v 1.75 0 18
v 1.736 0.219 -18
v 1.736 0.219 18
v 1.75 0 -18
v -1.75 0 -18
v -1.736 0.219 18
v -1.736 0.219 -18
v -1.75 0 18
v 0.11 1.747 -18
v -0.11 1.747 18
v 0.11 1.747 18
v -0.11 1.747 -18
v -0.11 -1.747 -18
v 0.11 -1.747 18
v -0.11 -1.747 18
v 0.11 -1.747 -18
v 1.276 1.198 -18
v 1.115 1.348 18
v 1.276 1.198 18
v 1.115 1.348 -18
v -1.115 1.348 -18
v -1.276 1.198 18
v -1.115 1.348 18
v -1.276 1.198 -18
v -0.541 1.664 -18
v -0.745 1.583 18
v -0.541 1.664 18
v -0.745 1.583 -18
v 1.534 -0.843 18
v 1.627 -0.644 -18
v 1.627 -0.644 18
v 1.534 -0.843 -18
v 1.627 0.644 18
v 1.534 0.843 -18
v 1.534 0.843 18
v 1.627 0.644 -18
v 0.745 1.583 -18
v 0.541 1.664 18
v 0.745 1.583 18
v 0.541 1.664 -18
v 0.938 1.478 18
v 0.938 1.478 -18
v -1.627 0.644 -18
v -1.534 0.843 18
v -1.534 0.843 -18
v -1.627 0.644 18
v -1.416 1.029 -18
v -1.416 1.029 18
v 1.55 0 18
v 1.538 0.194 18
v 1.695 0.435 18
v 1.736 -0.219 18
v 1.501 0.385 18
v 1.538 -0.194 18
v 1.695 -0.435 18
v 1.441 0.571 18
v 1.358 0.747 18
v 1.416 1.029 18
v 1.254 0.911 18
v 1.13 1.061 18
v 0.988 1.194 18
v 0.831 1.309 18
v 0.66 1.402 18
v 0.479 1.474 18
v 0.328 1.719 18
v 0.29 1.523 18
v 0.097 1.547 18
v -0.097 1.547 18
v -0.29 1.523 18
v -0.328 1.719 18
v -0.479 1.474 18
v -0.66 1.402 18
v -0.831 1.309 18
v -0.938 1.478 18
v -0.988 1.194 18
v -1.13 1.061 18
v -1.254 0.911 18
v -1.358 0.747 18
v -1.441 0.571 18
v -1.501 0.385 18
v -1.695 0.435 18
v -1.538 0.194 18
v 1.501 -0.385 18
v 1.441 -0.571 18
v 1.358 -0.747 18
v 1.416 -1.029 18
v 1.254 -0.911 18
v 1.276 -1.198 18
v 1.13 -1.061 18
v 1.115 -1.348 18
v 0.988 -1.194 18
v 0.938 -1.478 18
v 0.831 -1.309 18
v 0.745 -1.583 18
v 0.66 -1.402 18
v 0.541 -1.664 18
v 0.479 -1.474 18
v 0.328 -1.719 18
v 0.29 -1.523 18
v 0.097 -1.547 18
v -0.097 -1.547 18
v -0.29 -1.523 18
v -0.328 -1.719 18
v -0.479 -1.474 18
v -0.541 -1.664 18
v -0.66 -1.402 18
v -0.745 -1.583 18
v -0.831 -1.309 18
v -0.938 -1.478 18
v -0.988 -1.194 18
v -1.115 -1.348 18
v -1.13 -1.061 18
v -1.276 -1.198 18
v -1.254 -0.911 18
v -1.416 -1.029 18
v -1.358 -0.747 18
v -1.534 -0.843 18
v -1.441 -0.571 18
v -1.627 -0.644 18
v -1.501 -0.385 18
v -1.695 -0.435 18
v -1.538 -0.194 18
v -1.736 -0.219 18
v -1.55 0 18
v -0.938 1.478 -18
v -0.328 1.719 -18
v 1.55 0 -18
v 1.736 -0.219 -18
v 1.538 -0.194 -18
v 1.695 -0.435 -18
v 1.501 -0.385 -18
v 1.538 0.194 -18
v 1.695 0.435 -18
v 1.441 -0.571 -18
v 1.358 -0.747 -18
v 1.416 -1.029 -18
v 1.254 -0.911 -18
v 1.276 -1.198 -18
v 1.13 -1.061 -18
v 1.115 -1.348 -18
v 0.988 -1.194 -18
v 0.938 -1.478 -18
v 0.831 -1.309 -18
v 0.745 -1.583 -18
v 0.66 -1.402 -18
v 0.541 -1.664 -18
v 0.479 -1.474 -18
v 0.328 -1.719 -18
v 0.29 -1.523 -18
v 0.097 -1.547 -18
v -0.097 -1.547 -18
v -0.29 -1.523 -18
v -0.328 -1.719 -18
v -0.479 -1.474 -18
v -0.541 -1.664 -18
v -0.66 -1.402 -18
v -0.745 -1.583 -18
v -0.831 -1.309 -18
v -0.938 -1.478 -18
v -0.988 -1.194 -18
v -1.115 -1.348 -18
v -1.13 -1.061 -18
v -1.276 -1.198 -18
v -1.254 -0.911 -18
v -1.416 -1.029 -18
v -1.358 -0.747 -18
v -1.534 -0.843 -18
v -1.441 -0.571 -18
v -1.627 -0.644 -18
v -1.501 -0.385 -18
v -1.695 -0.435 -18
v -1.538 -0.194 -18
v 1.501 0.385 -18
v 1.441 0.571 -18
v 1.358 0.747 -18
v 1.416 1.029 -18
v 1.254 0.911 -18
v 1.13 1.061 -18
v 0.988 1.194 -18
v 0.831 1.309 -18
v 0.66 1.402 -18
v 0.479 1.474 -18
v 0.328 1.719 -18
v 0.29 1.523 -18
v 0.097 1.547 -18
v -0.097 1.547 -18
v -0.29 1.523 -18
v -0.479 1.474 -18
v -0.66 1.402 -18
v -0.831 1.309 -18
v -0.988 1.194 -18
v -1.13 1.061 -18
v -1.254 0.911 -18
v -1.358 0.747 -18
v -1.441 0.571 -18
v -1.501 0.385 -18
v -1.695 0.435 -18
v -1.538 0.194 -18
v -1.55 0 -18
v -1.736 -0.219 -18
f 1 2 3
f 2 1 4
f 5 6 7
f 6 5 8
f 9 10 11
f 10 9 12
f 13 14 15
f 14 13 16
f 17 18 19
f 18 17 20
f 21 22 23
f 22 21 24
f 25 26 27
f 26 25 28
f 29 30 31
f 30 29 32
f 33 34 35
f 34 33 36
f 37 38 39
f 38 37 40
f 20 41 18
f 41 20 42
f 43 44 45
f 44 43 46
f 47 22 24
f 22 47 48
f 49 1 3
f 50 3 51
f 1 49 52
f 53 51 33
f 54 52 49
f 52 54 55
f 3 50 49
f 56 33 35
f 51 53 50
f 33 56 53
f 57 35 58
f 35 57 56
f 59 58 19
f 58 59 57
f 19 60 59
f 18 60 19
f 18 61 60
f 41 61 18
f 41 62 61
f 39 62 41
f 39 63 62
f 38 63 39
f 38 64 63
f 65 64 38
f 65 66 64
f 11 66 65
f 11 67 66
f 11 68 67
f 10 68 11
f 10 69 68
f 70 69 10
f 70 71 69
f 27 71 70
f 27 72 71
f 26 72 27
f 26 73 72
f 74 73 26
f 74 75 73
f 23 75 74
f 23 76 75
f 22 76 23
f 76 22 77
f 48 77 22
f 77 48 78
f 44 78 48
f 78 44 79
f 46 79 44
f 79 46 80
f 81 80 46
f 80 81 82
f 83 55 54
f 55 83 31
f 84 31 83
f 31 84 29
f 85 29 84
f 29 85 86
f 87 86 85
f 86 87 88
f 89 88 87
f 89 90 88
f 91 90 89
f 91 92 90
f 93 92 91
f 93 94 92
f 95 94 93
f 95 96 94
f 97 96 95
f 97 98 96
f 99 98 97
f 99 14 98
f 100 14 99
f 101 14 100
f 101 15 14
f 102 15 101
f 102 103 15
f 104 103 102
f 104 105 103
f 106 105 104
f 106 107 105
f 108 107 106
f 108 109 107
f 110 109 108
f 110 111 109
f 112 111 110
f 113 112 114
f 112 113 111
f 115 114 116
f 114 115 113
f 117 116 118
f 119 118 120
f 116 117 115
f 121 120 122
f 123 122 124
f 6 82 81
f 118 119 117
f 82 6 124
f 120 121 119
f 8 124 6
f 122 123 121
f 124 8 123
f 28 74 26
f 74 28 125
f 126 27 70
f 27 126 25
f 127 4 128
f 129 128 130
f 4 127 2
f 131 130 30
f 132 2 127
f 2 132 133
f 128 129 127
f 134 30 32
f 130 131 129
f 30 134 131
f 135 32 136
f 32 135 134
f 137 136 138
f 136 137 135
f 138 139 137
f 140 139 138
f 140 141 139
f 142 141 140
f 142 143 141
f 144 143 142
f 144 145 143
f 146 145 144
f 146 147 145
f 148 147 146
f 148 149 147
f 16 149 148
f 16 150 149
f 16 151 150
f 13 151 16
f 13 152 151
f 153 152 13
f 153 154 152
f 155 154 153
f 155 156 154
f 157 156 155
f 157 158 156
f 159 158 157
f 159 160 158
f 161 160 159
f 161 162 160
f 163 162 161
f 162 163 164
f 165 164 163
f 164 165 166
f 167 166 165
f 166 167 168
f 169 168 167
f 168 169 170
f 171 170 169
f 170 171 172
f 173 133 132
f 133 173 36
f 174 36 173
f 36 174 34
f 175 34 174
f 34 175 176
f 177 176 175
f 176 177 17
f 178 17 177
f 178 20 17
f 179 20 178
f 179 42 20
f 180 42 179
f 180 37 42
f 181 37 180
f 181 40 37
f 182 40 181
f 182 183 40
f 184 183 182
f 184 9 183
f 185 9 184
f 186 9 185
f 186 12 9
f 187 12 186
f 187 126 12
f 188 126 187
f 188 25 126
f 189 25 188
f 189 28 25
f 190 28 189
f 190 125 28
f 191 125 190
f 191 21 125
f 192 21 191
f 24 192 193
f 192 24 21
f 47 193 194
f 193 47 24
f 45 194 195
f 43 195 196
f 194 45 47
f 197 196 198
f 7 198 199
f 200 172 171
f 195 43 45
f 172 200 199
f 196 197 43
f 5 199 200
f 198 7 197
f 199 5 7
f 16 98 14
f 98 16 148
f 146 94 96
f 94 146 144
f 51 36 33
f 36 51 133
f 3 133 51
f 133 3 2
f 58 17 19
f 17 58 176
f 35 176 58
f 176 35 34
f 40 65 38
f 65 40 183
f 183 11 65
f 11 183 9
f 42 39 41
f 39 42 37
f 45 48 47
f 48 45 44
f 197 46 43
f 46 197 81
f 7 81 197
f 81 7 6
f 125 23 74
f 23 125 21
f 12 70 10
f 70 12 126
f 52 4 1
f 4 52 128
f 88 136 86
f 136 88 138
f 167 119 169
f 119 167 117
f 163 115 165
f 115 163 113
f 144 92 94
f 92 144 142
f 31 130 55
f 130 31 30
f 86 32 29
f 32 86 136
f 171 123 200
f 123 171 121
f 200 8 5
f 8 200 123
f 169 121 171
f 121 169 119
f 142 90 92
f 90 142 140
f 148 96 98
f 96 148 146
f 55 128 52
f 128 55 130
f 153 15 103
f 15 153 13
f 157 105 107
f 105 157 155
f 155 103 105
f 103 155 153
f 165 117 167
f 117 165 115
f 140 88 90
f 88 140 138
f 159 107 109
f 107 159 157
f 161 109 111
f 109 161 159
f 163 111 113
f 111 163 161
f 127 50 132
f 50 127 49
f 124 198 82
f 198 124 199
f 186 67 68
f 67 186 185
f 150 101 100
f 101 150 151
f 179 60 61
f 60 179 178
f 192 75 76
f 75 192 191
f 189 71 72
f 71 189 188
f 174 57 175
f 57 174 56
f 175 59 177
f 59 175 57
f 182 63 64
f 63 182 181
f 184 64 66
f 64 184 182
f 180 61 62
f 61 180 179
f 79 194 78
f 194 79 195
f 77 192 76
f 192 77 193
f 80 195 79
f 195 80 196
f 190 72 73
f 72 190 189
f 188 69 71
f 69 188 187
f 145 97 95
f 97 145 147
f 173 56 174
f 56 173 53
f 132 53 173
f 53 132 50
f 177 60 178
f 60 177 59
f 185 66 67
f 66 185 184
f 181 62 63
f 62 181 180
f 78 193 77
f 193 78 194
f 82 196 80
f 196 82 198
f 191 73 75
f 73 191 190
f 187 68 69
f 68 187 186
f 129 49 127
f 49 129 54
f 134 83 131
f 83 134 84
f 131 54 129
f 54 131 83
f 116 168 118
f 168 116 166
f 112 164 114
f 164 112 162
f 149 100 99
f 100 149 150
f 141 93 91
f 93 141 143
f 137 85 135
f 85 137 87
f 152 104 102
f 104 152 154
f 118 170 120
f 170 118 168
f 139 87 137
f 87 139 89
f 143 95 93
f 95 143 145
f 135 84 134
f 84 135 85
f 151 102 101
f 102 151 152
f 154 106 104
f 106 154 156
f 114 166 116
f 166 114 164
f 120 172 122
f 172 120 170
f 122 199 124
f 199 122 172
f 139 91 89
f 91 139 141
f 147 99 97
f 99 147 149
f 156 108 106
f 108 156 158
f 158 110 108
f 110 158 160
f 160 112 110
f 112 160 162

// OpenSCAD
$fn = 50;


difference() {
	union() {
		translate(v = [0, 0, -18.0000000000]) {
			cylinder(h = 36, r = 1.7500000000);
		}
	}
	union() {
		translate(v = [0, 0, -100.0000000000]) {
			cylinder(h = 200, r = 1.5500000000);
		}
	}
}
